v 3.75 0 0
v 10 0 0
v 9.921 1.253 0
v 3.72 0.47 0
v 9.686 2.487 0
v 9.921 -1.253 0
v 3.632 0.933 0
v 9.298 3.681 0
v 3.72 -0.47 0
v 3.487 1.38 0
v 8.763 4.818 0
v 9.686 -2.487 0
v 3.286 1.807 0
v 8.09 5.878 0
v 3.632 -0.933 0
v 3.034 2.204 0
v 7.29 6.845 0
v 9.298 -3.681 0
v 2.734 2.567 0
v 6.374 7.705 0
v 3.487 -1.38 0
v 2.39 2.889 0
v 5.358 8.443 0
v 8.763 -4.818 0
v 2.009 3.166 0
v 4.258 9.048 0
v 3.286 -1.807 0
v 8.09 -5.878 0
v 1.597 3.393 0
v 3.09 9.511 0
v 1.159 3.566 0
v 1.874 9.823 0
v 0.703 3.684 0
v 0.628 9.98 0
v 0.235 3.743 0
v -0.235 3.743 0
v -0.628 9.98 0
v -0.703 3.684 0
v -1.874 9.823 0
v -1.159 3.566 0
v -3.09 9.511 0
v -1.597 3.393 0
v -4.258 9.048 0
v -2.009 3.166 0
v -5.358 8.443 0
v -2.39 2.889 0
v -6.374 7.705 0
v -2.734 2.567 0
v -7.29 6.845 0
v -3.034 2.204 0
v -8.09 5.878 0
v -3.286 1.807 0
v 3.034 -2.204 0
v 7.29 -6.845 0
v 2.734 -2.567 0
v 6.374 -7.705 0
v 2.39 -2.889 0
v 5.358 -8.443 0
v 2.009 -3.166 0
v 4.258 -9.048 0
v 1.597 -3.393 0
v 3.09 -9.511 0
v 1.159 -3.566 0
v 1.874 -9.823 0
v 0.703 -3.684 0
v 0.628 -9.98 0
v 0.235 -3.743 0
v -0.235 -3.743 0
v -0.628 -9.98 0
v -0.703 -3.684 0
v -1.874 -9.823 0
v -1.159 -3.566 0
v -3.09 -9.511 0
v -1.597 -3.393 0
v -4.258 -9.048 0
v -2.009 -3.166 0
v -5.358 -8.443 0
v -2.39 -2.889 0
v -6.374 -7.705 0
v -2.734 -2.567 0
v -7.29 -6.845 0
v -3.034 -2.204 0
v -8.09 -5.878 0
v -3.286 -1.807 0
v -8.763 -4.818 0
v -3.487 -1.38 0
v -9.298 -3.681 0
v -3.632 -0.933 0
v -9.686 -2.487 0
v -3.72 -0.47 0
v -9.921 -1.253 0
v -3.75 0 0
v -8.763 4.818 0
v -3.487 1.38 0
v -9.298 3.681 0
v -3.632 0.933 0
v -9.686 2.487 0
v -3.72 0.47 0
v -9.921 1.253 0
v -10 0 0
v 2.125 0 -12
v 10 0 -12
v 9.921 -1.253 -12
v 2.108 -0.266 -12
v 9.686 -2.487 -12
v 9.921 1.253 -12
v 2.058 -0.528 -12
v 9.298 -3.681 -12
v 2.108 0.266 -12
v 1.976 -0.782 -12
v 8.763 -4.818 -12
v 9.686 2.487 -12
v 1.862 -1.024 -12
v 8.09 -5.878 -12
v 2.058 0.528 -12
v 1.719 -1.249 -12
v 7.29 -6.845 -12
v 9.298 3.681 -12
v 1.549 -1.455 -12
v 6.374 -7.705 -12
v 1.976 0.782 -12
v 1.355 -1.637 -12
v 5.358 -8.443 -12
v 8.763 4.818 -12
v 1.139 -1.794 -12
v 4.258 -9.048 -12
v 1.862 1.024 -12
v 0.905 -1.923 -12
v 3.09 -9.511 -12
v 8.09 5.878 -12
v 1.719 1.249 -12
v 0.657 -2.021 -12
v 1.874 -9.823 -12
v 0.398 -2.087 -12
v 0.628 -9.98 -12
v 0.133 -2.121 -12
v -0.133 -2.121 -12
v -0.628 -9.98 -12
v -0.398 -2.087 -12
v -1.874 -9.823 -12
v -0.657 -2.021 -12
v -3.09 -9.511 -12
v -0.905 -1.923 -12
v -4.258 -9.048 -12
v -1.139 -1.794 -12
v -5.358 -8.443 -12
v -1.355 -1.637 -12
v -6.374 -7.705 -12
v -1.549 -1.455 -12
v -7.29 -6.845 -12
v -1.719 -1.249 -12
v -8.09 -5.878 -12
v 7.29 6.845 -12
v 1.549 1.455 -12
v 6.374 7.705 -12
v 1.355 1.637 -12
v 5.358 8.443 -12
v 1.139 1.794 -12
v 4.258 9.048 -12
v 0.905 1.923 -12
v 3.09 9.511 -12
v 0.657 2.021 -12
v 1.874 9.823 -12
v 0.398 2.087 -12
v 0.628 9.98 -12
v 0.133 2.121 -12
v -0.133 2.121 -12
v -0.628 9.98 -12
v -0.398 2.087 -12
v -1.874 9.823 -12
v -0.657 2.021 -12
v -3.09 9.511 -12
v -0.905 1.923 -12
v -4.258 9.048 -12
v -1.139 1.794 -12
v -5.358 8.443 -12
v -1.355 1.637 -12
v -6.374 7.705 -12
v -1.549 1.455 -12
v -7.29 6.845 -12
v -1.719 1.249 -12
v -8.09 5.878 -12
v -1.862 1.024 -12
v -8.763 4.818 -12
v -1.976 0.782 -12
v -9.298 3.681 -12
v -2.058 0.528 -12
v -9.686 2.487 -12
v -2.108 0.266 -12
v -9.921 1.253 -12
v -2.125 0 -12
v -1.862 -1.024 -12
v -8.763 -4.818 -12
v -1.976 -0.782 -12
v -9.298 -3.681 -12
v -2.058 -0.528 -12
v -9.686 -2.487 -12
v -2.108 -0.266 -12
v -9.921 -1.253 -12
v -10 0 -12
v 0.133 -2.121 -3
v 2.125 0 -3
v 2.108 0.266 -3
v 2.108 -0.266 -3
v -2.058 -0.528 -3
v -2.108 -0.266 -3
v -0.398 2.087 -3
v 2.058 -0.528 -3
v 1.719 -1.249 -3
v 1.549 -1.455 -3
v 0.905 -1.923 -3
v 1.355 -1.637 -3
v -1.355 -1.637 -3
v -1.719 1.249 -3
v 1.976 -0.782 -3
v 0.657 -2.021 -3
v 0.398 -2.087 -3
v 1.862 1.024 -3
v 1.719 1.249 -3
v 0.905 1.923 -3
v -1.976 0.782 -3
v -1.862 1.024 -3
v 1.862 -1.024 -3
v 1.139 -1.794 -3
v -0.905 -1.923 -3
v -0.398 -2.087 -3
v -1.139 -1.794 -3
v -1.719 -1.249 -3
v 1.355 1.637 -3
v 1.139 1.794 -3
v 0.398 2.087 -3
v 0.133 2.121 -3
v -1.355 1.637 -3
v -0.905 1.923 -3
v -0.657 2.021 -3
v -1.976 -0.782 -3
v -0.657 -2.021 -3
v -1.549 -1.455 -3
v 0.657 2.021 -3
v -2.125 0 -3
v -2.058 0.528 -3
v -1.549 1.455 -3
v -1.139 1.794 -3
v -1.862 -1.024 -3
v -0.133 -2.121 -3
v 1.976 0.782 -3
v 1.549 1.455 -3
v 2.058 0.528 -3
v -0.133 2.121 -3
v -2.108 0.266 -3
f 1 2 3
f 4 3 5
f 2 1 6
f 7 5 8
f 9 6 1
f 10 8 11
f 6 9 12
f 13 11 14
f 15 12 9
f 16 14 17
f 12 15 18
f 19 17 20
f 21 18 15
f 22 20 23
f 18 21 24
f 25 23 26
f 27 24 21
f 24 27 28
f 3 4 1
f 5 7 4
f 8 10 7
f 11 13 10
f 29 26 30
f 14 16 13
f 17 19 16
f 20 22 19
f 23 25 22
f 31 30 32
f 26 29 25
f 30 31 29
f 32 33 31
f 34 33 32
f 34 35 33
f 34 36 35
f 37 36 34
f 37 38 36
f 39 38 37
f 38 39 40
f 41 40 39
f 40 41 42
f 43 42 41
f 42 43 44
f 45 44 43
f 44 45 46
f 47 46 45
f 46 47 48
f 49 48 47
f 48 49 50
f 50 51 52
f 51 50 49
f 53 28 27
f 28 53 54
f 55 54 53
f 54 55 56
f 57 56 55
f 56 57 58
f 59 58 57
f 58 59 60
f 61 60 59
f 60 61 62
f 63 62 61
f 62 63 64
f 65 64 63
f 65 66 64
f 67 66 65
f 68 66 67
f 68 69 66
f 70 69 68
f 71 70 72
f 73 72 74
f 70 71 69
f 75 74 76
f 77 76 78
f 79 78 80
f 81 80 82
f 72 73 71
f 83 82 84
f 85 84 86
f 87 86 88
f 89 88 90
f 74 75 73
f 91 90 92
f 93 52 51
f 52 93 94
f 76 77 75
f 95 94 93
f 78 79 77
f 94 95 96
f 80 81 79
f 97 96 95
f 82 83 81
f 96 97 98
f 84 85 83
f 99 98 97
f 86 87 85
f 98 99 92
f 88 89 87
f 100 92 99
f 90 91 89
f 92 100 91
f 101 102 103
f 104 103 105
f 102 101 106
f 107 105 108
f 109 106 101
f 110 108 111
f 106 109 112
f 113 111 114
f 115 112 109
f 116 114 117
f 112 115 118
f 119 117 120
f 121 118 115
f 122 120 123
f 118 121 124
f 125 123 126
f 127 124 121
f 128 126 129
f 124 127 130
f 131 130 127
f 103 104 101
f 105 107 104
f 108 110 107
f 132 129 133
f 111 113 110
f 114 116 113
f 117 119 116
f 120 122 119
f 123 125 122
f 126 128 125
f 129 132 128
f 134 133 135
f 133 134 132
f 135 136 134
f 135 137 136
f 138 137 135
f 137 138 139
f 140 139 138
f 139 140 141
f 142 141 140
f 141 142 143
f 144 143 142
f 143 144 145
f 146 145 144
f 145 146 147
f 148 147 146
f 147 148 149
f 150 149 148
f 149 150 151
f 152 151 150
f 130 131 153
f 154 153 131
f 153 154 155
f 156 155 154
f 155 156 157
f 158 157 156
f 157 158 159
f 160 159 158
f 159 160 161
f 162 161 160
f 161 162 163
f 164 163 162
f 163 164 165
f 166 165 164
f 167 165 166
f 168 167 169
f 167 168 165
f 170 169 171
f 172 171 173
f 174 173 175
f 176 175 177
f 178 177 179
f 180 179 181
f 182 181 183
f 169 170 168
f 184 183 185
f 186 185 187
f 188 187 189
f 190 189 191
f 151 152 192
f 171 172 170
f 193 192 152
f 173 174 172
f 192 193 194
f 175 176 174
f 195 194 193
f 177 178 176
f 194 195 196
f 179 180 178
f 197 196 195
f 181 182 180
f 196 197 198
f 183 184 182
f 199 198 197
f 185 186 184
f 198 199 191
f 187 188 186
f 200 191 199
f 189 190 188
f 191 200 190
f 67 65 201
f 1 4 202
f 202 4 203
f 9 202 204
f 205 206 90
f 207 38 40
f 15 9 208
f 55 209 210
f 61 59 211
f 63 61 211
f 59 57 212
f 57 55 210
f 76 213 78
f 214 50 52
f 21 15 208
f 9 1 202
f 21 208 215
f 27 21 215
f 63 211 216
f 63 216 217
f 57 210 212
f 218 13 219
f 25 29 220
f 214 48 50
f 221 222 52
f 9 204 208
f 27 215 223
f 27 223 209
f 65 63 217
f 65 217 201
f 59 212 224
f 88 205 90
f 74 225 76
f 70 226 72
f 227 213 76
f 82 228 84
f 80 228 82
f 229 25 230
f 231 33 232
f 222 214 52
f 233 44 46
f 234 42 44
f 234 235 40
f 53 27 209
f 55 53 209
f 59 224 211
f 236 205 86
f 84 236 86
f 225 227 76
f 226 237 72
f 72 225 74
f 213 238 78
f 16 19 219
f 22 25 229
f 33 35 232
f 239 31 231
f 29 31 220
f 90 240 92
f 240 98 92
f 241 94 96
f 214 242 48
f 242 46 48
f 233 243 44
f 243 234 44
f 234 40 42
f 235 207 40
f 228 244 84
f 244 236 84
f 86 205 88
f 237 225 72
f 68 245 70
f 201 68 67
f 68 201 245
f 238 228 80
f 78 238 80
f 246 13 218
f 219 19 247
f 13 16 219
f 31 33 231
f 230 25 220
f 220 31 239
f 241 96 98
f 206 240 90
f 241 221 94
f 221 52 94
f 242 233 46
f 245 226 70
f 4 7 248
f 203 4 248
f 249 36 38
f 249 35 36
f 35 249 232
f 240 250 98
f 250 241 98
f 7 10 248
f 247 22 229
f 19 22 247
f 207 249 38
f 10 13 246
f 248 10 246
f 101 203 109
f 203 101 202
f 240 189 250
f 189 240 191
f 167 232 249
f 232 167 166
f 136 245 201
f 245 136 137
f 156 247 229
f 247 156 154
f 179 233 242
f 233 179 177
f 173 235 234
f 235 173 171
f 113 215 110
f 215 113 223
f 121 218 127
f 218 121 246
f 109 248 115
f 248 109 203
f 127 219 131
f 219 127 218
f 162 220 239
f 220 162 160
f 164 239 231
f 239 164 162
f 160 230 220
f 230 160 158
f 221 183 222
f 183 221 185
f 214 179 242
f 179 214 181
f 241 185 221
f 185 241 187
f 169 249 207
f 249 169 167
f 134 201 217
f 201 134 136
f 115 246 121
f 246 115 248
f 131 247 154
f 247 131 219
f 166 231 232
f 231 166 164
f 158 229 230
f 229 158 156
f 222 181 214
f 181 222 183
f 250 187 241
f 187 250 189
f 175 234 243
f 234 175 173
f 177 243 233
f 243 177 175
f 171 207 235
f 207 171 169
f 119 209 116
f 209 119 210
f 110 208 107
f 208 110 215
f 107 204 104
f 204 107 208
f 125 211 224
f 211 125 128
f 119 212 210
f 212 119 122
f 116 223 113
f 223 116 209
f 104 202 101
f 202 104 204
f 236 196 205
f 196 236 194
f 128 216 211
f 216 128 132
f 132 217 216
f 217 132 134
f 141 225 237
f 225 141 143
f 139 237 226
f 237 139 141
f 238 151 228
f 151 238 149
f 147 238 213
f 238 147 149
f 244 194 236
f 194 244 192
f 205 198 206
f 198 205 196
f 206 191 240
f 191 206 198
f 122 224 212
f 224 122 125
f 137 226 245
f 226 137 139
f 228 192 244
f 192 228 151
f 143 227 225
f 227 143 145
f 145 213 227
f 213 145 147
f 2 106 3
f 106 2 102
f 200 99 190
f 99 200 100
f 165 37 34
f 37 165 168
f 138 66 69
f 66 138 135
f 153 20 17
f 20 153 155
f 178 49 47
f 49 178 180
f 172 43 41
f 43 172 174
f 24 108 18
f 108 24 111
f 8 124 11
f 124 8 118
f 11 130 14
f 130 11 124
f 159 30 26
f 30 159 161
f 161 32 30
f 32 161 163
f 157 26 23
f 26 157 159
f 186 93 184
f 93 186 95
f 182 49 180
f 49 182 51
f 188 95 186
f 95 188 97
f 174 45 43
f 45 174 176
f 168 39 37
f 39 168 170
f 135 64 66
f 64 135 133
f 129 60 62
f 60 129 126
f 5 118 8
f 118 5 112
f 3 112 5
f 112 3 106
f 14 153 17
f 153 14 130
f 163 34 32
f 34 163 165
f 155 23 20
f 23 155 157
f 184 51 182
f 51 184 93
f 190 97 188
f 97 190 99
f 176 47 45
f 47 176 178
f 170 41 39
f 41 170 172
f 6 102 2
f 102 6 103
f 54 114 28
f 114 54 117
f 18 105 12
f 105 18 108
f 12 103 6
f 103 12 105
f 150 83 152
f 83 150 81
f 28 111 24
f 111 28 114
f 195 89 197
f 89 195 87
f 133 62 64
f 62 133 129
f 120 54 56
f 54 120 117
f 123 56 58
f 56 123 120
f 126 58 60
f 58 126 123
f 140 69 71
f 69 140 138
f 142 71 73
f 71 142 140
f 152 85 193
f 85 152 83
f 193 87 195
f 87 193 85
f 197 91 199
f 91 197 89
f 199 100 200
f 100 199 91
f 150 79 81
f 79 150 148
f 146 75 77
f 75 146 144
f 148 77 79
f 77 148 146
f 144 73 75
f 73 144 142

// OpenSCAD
$fn = 50;


difference() {
	union() {
		translate(v = [0, 0, -12.0000000000]) {
			cylinder(h = 12, r = 10.0000000000);
		}
	}
	union() {
		translate(v = [0, 0, 0]) {
			rotate(a = [0, 0, 0]) {
				difference() {
					union() {
						#translate(v = [0, 0, -12.0000000000]) {
							cylinder(h = 12, r = 2.0000000000);
						}
						#translate(v = [0, 0, -3]) {
							cylinder(h = 3, r1 = 2.1250000000, r2 = 3.7500000000);
						}
						#translate(v = [0, 0, -12.0000000000]) {
							cylinder(h = 12, r = 2.1250000000);
						}
						#translate(v = [0, 0, -12.0000000000]) {
							cylinder(h = 12, r = 2.0000000000);
						}
					}
					union();
				}
			}
		}
	}
}
